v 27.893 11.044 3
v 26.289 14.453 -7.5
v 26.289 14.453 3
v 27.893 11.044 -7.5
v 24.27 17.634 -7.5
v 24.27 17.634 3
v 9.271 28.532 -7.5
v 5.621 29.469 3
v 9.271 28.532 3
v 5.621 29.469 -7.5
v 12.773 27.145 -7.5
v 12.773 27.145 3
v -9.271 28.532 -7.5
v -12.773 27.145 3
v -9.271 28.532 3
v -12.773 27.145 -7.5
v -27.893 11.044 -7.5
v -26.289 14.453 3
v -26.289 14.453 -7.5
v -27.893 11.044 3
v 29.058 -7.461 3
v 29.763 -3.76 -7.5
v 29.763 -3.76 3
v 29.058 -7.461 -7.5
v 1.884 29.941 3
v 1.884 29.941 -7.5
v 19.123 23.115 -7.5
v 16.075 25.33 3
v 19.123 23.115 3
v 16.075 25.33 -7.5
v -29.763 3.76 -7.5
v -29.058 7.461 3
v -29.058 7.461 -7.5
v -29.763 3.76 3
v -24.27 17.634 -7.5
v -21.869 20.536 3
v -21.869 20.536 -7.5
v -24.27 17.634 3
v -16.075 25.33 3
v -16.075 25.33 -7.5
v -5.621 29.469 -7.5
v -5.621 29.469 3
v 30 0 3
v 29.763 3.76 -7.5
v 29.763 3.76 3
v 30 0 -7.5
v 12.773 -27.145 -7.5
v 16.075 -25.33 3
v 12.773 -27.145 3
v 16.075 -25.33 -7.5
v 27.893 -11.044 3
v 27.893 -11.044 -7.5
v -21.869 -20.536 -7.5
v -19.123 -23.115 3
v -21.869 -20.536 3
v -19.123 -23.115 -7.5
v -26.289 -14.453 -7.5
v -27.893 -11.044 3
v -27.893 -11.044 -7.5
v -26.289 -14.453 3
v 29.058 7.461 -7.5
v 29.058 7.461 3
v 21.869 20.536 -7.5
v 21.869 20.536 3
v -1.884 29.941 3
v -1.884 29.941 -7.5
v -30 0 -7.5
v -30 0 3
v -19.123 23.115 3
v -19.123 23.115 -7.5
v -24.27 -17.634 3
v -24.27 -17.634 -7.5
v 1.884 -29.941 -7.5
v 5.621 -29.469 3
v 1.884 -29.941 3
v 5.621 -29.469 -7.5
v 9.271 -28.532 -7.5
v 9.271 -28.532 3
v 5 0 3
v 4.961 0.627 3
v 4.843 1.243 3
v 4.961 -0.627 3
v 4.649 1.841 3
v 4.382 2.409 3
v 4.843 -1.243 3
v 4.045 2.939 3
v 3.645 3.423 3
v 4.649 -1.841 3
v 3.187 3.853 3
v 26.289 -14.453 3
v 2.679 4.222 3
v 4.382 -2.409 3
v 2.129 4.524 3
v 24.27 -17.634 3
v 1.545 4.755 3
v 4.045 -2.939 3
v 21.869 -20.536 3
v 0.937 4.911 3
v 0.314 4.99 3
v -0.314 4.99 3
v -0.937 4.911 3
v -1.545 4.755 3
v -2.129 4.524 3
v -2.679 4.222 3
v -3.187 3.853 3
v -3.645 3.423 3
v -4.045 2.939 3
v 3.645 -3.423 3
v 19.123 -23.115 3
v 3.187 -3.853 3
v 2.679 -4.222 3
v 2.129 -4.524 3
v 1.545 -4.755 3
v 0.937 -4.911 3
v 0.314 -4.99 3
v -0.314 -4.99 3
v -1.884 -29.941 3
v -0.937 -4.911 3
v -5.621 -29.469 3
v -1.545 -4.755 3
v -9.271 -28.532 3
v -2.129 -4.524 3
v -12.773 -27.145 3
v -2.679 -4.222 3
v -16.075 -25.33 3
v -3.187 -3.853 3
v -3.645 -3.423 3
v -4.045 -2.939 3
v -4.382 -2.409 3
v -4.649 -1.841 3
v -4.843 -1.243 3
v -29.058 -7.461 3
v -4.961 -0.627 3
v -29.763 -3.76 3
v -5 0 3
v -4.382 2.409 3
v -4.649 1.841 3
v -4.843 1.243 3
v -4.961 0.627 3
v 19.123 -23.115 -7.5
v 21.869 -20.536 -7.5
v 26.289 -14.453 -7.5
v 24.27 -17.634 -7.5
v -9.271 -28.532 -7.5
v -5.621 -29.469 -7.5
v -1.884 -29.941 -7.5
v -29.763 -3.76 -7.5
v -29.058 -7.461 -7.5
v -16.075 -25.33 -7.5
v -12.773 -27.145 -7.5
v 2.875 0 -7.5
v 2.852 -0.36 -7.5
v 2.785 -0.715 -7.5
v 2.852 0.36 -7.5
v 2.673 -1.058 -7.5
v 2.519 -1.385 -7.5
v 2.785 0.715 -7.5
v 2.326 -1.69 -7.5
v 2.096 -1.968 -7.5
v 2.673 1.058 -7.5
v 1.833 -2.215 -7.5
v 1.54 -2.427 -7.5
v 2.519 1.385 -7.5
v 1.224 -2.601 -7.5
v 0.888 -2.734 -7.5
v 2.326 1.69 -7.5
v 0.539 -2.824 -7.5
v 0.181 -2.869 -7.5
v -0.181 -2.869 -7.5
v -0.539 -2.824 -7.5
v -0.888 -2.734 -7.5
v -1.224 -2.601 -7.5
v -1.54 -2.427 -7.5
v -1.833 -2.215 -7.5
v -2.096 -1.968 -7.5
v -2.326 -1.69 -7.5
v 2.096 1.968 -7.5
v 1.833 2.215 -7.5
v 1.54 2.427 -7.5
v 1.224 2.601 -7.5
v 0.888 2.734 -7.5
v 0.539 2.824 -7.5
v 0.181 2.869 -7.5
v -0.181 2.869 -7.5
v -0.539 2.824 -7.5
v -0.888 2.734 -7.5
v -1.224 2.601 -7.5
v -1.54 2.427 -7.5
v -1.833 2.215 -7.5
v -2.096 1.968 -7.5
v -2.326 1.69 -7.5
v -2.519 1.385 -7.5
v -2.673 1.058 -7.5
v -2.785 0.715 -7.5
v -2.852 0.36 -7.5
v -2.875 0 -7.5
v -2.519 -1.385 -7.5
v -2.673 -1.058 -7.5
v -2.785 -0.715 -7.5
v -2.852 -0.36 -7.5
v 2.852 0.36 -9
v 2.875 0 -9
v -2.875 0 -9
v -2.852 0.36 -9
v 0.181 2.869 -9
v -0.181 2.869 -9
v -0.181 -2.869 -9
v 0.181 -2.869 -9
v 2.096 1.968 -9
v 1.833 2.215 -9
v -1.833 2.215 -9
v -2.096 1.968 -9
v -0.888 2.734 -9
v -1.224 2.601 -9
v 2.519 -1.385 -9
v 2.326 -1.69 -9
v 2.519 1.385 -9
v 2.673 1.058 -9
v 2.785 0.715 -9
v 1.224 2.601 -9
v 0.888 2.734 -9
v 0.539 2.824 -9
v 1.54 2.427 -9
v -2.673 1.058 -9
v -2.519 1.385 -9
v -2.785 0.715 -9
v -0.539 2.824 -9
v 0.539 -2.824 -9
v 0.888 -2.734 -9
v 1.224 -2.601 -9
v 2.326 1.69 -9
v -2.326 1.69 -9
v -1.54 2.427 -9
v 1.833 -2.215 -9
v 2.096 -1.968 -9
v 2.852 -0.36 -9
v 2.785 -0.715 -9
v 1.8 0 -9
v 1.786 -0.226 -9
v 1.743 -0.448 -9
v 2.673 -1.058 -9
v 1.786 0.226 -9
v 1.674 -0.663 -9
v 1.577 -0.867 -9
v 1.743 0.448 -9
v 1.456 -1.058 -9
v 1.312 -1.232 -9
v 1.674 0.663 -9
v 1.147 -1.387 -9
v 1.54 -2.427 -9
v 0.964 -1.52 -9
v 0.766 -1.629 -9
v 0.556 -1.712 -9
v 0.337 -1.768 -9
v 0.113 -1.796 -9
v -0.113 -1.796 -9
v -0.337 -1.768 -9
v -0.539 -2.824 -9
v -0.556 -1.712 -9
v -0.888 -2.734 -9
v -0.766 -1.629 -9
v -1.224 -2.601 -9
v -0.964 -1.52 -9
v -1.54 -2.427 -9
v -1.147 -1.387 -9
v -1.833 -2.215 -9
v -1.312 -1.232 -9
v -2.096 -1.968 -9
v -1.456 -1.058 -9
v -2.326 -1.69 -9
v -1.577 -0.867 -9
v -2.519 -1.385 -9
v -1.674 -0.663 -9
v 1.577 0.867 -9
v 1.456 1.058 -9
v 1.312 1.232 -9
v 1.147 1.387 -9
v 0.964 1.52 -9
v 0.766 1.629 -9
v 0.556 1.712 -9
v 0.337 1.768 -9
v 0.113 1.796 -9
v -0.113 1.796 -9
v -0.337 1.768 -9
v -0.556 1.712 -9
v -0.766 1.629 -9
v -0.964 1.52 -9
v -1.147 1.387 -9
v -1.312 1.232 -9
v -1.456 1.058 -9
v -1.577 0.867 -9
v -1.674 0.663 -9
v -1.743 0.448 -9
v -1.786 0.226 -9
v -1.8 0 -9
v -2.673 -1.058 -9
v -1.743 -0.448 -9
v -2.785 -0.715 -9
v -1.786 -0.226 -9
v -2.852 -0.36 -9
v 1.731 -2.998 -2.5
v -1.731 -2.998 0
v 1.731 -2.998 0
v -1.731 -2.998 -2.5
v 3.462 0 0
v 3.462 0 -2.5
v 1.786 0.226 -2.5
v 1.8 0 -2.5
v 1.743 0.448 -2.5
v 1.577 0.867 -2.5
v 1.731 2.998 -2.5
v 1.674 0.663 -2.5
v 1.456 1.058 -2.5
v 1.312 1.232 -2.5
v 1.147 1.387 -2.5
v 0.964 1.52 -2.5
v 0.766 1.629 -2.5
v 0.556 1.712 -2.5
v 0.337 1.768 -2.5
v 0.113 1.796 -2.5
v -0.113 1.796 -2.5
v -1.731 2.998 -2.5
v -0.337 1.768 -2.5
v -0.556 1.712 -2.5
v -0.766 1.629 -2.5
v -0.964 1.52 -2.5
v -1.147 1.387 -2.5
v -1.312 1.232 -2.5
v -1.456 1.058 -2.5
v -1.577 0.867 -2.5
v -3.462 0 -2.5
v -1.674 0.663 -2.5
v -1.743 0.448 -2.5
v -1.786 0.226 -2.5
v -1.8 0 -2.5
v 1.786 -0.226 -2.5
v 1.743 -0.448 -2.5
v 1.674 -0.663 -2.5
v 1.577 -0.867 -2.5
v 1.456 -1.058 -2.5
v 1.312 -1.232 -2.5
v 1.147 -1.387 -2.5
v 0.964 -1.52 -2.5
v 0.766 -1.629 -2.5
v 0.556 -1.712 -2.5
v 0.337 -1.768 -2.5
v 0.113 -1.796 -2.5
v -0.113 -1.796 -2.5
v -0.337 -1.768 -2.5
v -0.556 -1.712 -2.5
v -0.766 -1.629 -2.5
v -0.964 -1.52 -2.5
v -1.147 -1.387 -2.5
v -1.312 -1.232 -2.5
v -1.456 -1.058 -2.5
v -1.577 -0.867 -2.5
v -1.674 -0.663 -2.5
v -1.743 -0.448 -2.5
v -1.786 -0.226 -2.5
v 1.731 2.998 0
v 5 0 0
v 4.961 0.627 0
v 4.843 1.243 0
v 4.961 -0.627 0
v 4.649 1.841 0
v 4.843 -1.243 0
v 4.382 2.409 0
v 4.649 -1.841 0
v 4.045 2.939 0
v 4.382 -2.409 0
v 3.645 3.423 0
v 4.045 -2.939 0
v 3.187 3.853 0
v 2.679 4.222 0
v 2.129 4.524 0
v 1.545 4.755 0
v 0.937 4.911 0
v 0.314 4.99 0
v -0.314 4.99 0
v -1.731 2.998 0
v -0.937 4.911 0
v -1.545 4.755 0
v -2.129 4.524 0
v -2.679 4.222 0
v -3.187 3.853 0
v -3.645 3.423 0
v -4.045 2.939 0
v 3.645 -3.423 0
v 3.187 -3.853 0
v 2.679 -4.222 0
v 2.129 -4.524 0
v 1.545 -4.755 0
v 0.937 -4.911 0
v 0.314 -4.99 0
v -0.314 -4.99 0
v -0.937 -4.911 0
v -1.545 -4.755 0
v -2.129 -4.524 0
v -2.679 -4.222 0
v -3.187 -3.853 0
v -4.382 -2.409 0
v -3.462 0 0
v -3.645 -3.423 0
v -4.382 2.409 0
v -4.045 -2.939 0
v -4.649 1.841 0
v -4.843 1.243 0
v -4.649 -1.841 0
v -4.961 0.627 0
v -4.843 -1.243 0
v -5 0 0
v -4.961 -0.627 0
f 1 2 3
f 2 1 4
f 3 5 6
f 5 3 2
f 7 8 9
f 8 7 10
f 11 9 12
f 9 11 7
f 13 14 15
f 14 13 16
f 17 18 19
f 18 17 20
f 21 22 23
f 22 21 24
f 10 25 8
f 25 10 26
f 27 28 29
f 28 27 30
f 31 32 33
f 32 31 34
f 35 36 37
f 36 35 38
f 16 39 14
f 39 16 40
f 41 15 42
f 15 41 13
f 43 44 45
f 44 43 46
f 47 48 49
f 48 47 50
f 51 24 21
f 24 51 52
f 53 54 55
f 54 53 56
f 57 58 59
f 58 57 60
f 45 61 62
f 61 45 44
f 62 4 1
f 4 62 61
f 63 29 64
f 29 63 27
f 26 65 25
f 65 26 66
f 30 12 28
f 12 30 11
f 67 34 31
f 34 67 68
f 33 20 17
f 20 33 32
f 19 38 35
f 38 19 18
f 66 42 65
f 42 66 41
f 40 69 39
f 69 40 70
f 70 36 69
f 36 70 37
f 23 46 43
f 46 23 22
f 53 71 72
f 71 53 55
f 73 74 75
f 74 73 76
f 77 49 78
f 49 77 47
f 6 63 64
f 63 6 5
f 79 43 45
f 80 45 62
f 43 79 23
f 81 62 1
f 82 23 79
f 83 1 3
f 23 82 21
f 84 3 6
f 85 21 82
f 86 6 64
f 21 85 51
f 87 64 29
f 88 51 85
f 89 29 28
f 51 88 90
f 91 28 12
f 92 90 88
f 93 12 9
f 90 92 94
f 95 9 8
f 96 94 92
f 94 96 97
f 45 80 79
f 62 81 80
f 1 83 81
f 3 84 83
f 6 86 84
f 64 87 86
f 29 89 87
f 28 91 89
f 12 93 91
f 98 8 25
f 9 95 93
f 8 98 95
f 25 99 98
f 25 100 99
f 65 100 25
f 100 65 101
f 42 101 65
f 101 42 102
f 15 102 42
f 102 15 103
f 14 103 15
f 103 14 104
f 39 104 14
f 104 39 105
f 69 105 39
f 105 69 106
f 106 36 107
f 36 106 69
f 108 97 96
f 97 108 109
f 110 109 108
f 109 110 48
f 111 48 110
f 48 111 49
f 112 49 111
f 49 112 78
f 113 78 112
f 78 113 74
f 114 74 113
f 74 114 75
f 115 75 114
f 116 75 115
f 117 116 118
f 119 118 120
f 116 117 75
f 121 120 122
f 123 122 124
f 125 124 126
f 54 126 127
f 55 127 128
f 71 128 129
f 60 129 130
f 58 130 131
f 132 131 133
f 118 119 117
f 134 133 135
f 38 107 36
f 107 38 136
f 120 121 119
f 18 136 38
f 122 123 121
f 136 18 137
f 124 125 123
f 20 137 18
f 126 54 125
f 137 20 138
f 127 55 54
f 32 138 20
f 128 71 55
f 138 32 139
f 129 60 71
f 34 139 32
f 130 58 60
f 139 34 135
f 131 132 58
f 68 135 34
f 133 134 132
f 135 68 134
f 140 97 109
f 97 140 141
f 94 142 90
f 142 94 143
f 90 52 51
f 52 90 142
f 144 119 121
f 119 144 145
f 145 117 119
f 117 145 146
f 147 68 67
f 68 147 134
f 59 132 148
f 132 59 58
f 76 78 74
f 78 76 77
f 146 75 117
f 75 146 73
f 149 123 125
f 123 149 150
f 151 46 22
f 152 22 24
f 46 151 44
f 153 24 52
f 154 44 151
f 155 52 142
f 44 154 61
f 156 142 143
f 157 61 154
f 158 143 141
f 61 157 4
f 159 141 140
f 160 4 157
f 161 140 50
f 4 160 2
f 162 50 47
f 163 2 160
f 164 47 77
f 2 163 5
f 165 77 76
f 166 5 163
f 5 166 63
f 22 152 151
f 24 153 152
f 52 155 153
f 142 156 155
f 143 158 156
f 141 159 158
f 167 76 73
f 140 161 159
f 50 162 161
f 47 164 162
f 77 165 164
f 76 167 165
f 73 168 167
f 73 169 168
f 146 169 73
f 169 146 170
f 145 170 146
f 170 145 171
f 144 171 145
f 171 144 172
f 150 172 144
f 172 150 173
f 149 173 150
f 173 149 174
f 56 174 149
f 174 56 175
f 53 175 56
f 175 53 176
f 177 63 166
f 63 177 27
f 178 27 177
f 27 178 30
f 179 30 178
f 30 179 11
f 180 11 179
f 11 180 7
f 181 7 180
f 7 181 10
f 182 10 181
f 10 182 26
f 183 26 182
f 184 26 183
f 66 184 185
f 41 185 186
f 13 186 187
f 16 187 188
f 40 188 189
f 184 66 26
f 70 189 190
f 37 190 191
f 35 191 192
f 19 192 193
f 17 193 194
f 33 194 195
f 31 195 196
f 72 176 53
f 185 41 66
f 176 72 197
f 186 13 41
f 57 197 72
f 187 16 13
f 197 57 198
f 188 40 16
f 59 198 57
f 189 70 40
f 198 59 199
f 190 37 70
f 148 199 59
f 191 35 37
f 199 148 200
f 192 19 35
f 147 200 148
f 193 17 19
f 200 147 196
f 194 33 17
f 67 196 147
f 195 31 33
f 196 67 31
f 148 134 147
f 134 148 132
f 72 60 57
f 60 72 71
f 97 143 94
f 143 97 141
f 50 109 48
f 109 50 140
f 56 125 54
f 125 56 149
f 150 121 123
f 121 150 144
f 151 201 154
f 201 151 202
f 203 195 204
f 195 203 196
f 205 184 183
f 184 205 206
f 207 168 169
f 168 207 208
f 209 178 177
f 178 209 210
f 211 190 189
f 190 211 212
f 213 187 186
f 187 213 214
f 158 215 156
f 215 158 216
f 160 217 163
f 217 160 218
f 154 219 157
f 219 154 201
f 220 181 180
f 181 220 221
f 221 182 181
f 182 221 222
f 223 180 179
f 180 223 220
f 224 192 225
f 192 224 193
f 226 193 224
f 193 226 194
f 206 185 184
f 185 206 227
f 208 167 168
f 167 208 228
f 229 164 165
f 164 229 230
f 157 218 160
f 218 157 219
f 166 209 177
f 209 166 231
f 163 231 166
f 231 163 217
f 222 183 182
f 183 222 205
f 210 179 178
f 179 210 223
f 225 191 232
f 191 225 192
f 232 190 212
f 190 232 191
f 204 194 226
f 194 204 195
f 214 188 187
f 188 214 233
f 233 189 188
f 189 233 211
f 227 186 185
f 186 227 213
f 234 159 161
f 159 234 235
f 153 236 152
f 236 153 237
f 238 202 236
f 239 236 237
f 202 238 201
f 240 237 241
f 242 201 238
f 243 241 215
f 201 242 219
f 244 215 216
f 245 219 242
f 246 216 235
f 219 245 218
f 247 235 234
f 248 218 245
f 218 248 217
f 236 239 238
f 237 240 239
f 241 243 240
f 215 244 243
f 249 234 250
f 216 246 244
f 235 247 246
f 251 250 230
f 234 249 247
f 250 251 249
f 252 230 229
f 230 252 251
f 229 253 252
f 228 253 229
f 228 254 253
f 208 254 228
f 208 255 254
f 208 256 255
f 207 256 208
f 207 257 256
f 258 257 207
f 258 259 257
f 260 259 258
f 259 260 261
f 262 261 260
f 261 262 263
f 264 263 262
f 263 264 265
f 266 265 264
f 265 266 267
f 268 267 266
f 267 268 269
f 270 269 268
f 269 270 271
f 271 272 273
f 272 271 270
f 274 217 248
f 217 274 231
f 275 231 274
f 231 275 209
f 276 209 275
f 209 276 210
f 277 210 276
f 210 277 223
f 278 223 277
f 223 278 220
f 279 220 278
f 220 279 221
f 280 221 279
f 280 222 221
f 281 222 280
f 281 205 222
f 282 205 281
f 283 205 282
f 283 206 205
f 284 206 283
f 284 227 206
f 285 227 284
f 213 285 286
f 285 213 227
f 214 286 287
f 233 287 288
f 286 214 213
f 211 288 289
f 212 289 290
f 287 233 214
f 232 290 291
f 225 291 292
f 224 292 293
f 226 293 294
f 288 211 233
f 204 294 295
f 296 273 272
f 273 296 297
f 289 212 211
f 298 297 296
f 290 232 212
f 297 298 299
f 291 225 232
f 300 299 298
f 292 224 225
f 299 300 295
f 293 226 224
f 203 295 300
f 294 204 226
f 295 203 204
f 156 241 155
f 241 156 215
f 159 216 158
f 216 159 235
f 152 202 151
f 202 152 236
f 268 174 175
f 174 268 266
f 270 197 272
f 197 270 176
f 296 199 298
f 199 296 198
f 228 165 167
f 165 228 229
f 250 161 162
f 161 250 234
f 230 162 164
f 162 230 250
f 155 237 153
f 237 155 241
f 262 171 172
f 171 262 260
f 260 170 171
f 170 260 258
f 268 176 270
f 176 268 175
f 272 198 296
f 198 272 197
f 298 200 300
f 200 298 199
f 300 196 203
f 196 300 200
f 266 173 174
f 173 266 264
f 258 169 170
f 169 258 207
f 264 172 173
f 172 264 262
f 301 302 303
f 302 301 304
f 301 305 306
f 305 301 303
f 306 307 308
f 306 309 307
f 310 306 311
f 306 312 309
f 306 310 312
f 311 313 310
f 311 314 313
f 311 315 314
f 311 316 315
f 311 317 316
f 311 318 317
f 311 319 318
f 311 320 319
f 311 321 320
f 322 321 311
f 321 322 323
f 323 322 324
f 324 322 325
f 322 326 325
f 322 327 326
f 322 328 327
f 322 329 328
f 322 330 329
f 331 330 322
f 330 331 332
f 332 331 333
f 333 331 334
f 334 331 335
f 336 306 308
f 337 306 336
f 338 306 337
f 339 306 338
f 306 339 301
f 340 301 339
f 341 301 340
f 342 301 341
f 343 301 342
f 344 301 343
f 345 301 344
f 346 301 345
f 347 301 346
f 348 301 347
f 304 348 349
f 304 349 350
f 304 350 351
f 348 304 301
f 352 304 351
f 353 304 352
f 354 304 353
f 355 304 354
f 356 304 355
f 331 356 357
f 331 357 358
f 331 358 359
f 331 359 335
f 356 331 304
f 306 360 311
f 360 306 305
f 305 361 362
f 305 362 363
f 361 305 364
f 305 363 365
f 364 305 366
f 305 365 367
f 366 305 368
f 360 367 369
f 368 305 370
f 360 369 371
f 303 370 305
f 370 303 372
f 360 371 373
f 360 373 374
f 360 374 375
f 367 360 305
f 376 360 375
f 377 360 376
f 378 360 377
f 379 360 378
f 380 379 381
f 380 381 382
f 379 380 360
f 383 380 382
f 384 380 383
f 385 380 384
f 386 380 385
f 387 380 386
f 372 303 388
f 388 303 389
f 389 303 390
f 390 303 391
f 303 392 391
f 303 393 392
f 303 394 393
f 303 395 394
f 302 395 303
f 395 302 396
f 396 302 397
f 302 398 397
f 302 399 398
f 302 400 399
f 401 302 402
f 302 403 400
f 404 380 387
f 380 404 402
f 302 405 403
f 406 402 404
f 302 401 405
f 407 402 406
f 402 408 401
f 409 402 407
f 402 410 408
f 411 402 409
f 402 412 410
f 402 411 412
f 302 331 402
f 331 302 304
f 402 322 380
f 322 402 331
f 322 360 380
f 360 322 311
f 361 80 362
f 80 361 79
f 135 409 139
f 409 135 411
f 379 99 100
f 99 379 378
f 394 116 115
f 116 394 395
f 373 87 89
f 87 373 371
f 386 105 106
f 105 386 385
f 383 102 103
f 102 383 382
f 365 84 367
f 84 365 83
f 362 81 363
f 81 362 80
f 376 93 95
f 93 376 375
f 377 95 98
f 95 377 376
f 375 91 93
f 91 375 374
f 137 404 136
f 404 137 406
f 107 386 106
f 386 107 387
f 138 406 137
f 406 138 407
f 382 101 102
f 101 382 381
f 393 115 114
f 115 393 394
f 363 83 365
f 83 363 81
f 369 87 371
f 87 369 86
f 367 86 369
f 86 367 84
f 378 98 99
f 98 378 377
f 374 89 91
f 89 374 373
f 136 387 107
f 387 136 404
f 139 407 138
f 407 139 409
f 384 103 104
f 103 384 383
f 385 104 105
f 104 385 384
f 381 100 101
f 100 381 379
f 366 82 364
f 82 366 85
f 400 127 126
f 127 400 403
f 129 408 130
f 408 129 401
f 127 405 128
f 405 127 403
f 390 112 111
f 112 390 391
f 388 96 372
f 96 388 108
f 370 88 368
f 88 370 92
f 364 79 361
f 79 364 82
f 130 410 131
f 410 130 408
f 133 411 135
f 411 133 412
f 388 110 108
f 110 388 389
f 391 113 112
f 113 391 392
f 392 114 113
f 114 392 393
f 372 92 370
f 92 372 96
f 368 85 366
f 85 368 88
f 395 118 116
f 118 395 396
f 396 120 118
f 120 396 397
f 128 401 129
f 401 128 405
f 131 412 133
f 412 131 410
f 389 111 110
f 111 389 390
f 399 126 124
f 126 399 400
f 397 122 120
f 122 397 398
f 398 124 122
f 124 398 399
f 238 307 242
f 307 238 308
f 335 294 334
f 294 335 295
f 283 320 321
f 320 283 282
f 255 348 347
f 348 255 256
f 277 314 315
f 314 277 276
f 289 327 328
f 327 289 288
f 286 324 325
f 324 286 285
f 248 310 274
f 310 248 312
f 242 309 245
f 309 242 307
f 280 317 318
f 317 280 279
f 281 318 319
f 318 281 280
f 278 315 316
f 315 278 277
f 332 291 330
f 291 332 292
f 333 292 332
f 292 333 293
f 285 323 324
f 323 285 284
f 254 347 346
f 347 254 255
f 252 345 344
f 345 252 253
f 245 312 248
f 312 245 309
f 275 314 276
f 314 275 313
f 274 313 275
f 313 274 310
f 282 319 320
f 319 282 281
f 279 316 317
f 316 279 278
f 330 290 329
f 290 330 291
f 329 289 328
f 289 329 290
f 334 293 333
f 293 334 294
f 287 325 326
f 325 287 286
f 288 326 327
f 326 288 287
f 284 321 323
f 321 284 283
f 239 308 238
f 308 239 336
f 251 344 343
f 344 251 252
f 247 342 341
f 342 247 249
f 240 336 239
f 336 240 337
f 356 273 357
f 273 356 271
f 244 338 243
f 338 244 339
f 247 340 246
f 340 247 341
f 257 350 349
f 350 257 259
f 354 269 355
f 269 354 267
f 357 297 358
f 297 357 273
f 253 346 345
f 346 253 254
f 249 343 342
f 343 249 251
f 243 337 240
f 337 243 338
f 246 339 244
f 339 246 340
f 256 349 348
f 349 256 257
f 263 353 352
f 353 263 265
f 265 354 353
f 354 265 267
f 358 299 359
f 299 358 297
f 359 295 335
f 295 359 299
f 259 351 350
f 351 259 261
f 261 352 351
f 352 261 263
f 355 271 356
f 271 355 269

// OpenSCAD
$fn = 50;


difference() {
	union() {
		translate(v = [0, 0, -7.5000000000]) {
			cylinder(h = 10.5000000000, r = 30.0000000000);
		}
		#translate(v = [0, 0, -9.0000000000]) {
			cylinder(h = 9, r = 2.8750000000);
		}
	}
	union() {
		translate(v = [0, 0, 0]) {
			rotate(a = [0, 0, 0]) {
				difference() {
					union() {
						translate(v = [0, 0, -2.5000000000]) {
							linear_extrude(height = 2.5000000000) {
								polygon(points = [[3.4620000000, 0.0000000000], [1.7310000000, 2.9981799479], [-1.7310000000, 2.9981799479], [-3.4620000000, 0.0000000000], [-1.7310000000, -2.9981799479], [1.7310000000, -2.9981799479]]);
							}
						}
					}
					union();
				}
			}
		}
		#cylinder(h = 3, r = 5.0000000000);
		#translate(v = [0, 0, -100.0000000000]) {
			cylinder(h = 200, r = 1.8000000000);
		}
	}
}
